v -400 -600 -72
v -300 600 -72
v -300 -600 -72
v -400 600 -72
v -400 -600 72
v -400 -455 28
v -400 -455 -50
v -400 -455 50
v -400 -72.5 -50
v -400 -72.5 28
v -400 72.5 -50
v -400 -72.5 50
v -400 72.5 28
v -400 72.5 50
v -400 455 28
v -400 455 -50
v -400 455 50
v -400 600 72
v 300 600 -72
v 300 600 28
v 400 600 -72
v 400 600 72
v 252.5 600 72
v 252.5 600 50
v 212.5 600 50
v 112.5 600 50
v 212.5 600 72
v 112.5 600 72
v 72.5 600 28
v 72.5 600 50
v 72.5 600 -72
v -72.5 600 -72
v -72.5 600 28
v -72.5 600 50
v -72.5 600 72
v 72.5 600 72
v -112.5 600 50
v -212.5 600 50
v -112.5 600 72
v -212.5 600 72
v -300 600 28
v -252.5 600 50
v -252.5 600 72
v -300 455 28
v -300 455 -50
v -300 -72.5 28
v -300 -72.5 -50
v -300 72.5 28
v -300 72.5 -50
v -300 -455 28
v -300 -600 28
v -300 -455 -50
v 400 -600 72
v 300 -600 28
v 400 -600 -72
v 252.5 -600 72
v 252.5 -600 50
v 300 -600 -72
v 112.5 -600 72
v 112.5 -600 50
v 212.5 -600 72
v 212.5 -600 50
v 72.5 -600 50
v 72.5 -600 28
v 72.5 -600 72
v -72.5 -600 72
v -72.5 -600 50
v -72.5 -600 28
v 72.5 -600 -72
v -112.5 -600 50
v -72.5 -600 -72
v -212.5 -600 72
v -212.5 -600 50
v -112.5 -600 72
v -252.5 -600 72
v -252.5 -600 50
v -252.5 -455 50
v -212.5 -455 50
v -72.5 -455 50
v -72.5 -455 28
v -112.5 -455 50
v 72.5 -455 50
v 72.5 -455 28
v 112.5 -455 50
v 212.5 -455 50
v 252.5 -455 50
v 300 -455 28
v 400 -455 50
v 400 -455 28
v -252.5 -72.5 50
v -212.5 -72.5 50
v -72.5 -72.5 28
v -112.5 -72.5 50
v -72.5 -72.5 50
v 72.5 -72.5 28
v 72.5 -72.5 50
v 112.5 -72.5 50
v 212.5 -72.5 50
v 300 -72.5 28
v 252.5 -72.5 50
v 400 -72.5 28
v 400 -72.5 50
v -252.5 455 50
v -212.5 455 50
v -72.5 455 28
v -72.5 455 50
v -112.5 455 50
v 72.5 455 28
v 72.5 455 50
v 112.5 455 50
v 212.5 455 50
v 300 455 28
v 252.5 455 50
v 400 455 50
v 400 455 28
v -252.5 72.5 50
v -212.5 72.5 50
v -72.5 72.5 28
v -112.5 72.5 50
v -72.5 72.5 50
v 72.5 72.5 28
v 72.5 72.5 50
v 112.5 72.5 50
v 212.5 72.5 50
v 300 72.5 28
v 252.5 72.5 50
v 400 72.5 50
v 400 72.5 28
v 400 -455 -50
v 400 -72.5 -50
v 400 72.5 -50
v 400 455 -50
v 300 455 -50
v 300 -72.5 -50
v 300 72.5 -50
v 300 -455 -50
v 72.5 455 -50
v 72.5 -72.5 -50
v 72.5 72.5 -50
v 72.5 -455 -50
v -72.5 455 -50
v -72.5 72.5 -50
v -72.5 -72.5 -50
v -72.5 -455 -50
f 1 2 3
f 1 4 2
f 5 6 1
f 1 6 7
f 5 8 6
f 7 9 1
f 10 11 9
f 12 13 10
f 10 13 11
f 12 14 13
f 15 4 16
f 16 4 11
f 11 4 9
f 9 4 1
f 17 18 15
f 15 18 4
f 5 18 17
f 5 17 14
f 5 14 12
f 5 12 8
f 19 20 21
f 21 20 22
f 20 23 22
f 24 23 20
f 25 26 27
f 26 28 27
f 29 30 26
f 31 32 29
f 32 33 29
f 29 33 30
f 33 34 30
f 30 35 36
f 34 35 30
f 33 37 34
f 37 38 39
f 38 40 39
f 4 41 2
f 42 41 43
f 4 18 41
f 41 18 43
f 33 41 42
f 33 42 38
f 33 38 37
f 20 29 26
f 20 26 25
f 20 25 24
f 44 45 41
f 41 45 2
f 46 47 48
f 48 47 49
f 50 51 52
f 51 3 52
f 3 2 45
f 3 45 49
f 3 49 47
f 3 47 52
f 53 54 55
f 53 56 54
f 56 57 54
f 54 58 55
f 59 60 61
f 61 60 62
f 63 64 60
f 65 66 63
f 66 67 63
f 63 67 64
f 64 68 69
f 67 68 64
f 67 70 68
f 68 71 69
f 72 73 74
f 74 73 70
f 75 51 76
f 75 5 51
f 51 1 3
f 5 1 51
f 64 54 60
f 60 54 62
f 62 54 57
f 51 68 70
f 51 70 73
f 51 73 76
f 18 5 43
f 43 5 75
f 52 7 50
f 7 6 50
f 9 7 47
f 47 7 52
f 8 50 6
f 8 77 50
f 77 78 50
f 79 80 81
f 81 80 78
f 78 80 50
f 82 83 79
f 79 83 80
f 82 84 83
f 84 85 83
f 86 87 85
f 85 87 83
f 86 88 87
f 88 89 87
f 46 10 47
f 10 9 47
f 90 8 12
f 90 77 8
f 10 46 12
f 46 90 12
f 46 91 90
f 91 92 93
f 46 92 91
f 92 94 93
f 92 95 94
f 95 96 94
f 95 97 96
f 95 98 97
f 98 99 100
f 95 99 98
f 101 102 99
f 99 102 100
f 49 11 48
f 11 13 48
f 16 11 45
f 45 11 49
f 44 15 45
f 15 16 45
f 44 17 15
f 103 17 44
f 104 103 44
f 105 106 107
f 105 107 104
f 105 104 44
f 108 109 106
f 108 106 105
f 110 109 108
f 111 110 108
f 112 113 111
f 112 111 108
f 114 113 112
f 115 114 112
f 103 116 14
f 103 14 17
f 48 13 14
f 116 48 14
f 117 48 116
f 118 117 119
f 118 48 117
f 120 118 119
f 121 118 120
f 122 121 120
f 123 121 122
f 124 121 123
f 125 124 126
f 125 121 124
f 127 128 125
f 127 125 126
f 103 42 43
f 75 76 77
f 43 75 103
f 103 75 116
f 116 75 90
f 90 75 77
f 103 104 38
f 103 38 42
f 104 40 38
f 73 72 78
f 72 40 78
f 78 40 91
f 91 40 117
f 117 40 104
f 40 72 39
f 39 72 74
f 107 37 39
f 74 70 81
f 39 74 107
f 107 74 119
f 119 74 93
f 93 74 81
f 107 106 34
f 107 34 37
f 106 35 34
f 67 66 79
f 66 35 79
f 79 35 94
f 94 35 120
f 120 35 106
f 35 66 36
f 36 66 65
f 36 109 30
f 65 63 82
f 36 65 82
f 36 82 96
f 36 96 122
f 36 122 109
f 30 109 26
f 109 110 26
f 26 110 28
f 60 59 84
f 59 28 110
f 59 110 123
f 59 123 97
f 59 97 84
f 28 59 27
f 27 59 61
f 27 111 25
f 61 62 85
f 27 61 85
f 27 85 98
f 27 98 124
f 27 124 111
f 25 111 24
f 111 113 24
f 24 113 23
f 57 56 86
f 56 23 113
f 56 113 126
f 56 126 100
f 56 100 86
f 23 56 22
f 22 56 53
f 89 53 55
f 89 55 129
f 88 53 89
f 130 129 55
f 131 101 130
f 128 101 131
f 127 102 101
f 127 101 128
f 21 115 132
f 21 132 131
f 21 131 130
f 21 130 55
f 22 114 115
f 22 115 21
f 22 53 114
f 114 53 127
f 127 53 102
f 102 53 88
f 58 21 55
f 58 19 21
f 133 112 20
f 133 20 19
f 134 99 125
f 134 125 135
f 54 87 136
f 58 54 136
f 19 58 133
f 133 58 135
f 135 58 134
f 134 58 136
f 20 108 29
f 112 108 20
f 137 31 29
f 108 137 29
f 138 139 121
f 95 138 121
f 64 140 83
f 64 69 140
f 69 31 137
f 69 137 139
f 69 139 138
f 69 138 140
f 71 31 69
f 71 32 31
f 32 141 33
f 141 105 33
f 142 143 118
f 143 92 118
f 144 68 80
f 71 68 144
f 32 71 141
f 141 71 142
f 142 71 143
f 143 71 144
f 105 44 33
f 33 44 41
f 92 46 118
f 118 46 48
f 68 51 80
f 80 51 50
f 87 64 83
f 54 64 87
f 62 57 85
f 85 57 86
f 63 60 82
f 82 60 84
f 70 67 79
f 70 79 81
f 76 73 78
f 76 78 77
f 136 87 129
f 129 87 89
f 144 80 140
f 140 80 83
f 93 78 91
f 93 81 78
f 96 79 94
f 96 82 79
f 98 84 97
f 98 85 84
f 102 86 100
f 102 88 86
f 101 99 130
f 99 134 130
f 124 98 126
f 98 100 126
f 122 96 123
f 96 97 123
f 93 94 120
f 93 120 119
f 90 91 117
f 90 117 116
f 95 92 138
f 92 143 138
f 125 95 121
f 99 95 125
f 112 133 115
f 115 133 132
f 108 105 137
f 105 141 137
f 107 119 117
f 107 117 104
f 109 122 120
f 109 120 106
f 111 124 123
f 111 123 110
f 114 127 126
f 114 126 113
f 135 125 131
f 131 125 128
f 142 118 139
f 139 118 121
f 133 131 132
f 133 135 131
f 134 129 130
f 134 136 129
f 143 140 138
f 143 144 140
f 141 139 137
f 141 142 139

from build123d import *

# Parameters (mm, degrees)
SKETCH_W            = 1200
SKETCH_H            = 144
SKETCH_W_2          = 382.5
SKETCH_H_2          = 78
PAD_DEPTH           = 400
PAD_DEPTH_BACK      = 400
SKETCH001_W         = 100
SKETCH001_H         = 227.5
SKETCH001_W_2       = 22
SKETCH001_H_2       = 40
POCKET_DEPTH        = 1200
MIRROREDSKETCH_W    = 100
MIRROREDSKETCH_H    = 227.5
MIRROREDSKETCH_W_2  = 22
MIRROREDSKETCH_H_2  = 40
POCKET001_DEPTH     = 1200
SKETCH002_W         = 382.5
SKETCH002_H         = 100
POCKET002_DEPTH     = 800
MIRROREDSKETCH002_W = 382.5
MIRROREDSKETCH002_H = 100
POCKET003_DEPTH     = 800


with BuildPart() as part:
    # Sketch → Pad (new body, two sides)
    with BuildSketch(Plane.YZ) as pad_sk:
        Rectangle(SKETCH_W, SKETCH_H)
        with Locations((-263.75, -11)):
            Rectangle(SKETCH_W_2, SKETCH_H_2, mode=Mode.SUBTRACT)
        with Locations((263.75, -11)):
            Rectangle(SKETCH_W_2, SKETCH_H_2, mode=Mode.SUBTRACT)
    extrude(amount=PAD_DEPTH)
    extrude(pad_sk.sketch, amount=-PAD_DEPTH_BACK)

    # Sketch001 (on Face4 of Pad) → Pocket (cut)
    with BuildSketch(Plane(origin=(0, -600, 0), x_dir=(0, 0, -1), z_dir=(0, -1, 0))):
        with Locations((22, 186.25)):
            Rectangle(SKETCH001_W, SKETCH001_H)
        with Locations((-61, 92.5)):
            Rectangle(SKETCH001_W_2, SKETCH001_H_2)
        with Locations((-61, 232.5)):
            Rectangle(SKETCH001_W_2, SKETCH001_H_2)
    extrude(amount=-POCKET_DEPTH, mode=Mode.SUBTRACT)

    # MirroredSketch → Pocket001 (cut)
    with BuildSketch(Plane(origin=(0, -600, 0), x_dir=(0, 0, -1), z_dir=(0, -1, 0))):
        with Locations((22, -186.25)):
            Rectangle(MIRROREDSKETCH_W, MIRROREDSKETCH_H)
        with Locations((-61, -92.5)):
            Rectangle(MIRROREDSKETCH_W_2, MIRROREDSKETCH_H_2)
        with Locations((-61, -232.5)):
            Rectangle(MIRROREDSKETCH_W_2, MIRROREDSKETCH_H_2)
    extrude(amount=-POCKET001_DEPTH, mode=Mode.SUBTRACT)

    # Sketch002 (on Face31 of Pocket001) → Pocket002 (cut)
    with BuildSketch(Plane.YZ.offset(400)):
        with Locations((-263.75, 0)):
            Rectangle(SKETCH002_W, SKETCH002_H)
    extrude(amount=-POCKET002_DEPTH, mode=Mode.SUBTRACT)

    # MirroredSketch002 → Pocket003 (cut)
    with BuildSketch(Plane.YZ.offset(400)):
        with Locations((263.75, 0)):
            Rectangle(MIRROREDSKETCH002_W, MIRROREDSKETCH002_H)
    extrude(amount=-POCKET003_DEPTH, mode=Mode.SUBTRACT)


solid = part.part
